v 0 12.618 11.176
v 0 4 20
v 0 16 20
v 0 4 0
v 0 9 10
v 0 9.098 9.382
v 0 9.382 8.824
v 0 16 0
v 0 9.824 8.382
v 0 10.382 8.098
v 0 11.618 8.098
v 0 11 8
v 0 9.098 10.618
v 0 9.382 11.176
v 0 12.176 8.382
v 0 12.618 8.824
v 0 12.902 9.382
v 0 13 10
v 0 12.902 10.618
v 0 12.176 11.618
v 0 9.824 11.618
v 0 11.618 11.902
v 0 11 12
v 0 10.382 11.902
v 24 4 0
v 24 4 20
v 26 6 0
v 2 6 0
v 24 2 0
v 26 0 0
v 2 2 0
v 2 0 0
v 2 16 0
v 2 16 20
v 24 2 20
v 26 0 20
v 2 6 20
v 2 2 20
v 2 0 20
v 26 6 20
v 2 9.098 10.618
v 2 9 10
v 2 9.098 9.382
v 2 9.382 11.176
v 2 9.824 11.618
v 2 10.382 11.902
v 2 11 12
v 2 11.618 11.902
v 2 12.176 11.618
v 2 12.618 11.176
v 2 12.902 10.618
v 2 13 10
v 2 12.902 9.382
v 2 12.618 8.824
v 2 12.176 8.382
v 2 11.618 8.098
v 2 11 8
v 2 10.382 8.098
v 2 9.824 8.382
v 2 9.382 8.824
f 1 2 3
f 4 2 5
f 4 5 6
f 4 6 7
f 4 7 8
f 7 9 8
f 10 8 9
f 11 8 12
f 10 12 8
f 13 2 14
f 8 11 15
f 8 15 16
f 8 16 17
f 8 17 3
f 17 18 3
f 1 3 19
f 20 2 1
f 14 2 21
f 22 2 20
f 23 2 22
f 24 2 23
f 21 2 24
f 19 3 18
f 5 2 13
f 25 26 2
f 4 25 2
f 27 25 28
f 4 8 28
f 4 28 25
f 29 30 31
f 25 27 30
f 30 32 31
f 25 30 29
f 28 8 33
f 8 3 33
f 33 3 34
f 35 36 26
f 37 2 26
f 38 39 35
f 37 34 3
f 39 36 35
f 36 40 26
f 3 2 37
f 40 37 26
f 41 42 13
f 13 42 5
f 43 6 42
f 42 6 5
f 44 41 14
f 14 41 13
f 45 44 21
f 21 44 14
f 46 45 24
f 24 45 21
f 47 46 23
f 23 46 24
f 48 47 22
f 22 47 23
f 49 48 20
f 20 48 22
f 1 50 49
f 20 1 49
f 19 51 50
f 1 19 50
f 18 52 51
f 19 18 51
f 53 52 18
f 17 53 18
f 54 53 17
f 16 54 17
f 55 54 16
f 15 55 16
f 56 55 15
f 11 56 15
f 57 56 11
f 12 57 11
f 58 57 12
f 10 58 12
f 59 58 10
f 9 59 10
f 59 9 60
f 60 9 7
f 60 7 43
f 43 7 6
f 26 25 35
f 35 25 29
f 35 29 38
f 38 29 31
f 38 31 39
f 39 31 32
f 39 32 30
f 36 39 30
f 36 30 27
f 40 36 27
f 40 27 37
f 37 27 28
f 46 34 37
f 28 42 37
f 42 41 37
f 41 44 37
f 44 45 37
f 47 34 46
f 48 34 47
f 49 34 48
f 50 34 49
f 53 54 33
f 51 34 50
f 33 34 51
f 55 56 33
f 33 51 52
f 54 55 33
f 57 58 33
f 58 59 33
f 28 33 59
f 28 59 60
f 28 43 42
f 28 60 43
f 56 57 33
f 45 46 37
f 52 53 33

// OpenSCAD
thick=2;
space=2;
depth=22;
overshoot=2;
width=20;
tab_height=10;

difference() {
	cube([depth+overshoot+thick, 2*thick+space+tab_height, width]);

	translate([thick,2*thick+space,-1]) cube([depth+thick, tab_height, width+2]);

	translate([0,thick,-1]) cube([depth+overshoot, space, width+2]);
	translate([0,0,-1]) cube([overshoot, thick, width+2]);

	translate([-1,2*thick+space+tab_height/2,width/2]) rotate([0,90,0]) cylinder(r=2, h=thick+2, $fn=20);
}
